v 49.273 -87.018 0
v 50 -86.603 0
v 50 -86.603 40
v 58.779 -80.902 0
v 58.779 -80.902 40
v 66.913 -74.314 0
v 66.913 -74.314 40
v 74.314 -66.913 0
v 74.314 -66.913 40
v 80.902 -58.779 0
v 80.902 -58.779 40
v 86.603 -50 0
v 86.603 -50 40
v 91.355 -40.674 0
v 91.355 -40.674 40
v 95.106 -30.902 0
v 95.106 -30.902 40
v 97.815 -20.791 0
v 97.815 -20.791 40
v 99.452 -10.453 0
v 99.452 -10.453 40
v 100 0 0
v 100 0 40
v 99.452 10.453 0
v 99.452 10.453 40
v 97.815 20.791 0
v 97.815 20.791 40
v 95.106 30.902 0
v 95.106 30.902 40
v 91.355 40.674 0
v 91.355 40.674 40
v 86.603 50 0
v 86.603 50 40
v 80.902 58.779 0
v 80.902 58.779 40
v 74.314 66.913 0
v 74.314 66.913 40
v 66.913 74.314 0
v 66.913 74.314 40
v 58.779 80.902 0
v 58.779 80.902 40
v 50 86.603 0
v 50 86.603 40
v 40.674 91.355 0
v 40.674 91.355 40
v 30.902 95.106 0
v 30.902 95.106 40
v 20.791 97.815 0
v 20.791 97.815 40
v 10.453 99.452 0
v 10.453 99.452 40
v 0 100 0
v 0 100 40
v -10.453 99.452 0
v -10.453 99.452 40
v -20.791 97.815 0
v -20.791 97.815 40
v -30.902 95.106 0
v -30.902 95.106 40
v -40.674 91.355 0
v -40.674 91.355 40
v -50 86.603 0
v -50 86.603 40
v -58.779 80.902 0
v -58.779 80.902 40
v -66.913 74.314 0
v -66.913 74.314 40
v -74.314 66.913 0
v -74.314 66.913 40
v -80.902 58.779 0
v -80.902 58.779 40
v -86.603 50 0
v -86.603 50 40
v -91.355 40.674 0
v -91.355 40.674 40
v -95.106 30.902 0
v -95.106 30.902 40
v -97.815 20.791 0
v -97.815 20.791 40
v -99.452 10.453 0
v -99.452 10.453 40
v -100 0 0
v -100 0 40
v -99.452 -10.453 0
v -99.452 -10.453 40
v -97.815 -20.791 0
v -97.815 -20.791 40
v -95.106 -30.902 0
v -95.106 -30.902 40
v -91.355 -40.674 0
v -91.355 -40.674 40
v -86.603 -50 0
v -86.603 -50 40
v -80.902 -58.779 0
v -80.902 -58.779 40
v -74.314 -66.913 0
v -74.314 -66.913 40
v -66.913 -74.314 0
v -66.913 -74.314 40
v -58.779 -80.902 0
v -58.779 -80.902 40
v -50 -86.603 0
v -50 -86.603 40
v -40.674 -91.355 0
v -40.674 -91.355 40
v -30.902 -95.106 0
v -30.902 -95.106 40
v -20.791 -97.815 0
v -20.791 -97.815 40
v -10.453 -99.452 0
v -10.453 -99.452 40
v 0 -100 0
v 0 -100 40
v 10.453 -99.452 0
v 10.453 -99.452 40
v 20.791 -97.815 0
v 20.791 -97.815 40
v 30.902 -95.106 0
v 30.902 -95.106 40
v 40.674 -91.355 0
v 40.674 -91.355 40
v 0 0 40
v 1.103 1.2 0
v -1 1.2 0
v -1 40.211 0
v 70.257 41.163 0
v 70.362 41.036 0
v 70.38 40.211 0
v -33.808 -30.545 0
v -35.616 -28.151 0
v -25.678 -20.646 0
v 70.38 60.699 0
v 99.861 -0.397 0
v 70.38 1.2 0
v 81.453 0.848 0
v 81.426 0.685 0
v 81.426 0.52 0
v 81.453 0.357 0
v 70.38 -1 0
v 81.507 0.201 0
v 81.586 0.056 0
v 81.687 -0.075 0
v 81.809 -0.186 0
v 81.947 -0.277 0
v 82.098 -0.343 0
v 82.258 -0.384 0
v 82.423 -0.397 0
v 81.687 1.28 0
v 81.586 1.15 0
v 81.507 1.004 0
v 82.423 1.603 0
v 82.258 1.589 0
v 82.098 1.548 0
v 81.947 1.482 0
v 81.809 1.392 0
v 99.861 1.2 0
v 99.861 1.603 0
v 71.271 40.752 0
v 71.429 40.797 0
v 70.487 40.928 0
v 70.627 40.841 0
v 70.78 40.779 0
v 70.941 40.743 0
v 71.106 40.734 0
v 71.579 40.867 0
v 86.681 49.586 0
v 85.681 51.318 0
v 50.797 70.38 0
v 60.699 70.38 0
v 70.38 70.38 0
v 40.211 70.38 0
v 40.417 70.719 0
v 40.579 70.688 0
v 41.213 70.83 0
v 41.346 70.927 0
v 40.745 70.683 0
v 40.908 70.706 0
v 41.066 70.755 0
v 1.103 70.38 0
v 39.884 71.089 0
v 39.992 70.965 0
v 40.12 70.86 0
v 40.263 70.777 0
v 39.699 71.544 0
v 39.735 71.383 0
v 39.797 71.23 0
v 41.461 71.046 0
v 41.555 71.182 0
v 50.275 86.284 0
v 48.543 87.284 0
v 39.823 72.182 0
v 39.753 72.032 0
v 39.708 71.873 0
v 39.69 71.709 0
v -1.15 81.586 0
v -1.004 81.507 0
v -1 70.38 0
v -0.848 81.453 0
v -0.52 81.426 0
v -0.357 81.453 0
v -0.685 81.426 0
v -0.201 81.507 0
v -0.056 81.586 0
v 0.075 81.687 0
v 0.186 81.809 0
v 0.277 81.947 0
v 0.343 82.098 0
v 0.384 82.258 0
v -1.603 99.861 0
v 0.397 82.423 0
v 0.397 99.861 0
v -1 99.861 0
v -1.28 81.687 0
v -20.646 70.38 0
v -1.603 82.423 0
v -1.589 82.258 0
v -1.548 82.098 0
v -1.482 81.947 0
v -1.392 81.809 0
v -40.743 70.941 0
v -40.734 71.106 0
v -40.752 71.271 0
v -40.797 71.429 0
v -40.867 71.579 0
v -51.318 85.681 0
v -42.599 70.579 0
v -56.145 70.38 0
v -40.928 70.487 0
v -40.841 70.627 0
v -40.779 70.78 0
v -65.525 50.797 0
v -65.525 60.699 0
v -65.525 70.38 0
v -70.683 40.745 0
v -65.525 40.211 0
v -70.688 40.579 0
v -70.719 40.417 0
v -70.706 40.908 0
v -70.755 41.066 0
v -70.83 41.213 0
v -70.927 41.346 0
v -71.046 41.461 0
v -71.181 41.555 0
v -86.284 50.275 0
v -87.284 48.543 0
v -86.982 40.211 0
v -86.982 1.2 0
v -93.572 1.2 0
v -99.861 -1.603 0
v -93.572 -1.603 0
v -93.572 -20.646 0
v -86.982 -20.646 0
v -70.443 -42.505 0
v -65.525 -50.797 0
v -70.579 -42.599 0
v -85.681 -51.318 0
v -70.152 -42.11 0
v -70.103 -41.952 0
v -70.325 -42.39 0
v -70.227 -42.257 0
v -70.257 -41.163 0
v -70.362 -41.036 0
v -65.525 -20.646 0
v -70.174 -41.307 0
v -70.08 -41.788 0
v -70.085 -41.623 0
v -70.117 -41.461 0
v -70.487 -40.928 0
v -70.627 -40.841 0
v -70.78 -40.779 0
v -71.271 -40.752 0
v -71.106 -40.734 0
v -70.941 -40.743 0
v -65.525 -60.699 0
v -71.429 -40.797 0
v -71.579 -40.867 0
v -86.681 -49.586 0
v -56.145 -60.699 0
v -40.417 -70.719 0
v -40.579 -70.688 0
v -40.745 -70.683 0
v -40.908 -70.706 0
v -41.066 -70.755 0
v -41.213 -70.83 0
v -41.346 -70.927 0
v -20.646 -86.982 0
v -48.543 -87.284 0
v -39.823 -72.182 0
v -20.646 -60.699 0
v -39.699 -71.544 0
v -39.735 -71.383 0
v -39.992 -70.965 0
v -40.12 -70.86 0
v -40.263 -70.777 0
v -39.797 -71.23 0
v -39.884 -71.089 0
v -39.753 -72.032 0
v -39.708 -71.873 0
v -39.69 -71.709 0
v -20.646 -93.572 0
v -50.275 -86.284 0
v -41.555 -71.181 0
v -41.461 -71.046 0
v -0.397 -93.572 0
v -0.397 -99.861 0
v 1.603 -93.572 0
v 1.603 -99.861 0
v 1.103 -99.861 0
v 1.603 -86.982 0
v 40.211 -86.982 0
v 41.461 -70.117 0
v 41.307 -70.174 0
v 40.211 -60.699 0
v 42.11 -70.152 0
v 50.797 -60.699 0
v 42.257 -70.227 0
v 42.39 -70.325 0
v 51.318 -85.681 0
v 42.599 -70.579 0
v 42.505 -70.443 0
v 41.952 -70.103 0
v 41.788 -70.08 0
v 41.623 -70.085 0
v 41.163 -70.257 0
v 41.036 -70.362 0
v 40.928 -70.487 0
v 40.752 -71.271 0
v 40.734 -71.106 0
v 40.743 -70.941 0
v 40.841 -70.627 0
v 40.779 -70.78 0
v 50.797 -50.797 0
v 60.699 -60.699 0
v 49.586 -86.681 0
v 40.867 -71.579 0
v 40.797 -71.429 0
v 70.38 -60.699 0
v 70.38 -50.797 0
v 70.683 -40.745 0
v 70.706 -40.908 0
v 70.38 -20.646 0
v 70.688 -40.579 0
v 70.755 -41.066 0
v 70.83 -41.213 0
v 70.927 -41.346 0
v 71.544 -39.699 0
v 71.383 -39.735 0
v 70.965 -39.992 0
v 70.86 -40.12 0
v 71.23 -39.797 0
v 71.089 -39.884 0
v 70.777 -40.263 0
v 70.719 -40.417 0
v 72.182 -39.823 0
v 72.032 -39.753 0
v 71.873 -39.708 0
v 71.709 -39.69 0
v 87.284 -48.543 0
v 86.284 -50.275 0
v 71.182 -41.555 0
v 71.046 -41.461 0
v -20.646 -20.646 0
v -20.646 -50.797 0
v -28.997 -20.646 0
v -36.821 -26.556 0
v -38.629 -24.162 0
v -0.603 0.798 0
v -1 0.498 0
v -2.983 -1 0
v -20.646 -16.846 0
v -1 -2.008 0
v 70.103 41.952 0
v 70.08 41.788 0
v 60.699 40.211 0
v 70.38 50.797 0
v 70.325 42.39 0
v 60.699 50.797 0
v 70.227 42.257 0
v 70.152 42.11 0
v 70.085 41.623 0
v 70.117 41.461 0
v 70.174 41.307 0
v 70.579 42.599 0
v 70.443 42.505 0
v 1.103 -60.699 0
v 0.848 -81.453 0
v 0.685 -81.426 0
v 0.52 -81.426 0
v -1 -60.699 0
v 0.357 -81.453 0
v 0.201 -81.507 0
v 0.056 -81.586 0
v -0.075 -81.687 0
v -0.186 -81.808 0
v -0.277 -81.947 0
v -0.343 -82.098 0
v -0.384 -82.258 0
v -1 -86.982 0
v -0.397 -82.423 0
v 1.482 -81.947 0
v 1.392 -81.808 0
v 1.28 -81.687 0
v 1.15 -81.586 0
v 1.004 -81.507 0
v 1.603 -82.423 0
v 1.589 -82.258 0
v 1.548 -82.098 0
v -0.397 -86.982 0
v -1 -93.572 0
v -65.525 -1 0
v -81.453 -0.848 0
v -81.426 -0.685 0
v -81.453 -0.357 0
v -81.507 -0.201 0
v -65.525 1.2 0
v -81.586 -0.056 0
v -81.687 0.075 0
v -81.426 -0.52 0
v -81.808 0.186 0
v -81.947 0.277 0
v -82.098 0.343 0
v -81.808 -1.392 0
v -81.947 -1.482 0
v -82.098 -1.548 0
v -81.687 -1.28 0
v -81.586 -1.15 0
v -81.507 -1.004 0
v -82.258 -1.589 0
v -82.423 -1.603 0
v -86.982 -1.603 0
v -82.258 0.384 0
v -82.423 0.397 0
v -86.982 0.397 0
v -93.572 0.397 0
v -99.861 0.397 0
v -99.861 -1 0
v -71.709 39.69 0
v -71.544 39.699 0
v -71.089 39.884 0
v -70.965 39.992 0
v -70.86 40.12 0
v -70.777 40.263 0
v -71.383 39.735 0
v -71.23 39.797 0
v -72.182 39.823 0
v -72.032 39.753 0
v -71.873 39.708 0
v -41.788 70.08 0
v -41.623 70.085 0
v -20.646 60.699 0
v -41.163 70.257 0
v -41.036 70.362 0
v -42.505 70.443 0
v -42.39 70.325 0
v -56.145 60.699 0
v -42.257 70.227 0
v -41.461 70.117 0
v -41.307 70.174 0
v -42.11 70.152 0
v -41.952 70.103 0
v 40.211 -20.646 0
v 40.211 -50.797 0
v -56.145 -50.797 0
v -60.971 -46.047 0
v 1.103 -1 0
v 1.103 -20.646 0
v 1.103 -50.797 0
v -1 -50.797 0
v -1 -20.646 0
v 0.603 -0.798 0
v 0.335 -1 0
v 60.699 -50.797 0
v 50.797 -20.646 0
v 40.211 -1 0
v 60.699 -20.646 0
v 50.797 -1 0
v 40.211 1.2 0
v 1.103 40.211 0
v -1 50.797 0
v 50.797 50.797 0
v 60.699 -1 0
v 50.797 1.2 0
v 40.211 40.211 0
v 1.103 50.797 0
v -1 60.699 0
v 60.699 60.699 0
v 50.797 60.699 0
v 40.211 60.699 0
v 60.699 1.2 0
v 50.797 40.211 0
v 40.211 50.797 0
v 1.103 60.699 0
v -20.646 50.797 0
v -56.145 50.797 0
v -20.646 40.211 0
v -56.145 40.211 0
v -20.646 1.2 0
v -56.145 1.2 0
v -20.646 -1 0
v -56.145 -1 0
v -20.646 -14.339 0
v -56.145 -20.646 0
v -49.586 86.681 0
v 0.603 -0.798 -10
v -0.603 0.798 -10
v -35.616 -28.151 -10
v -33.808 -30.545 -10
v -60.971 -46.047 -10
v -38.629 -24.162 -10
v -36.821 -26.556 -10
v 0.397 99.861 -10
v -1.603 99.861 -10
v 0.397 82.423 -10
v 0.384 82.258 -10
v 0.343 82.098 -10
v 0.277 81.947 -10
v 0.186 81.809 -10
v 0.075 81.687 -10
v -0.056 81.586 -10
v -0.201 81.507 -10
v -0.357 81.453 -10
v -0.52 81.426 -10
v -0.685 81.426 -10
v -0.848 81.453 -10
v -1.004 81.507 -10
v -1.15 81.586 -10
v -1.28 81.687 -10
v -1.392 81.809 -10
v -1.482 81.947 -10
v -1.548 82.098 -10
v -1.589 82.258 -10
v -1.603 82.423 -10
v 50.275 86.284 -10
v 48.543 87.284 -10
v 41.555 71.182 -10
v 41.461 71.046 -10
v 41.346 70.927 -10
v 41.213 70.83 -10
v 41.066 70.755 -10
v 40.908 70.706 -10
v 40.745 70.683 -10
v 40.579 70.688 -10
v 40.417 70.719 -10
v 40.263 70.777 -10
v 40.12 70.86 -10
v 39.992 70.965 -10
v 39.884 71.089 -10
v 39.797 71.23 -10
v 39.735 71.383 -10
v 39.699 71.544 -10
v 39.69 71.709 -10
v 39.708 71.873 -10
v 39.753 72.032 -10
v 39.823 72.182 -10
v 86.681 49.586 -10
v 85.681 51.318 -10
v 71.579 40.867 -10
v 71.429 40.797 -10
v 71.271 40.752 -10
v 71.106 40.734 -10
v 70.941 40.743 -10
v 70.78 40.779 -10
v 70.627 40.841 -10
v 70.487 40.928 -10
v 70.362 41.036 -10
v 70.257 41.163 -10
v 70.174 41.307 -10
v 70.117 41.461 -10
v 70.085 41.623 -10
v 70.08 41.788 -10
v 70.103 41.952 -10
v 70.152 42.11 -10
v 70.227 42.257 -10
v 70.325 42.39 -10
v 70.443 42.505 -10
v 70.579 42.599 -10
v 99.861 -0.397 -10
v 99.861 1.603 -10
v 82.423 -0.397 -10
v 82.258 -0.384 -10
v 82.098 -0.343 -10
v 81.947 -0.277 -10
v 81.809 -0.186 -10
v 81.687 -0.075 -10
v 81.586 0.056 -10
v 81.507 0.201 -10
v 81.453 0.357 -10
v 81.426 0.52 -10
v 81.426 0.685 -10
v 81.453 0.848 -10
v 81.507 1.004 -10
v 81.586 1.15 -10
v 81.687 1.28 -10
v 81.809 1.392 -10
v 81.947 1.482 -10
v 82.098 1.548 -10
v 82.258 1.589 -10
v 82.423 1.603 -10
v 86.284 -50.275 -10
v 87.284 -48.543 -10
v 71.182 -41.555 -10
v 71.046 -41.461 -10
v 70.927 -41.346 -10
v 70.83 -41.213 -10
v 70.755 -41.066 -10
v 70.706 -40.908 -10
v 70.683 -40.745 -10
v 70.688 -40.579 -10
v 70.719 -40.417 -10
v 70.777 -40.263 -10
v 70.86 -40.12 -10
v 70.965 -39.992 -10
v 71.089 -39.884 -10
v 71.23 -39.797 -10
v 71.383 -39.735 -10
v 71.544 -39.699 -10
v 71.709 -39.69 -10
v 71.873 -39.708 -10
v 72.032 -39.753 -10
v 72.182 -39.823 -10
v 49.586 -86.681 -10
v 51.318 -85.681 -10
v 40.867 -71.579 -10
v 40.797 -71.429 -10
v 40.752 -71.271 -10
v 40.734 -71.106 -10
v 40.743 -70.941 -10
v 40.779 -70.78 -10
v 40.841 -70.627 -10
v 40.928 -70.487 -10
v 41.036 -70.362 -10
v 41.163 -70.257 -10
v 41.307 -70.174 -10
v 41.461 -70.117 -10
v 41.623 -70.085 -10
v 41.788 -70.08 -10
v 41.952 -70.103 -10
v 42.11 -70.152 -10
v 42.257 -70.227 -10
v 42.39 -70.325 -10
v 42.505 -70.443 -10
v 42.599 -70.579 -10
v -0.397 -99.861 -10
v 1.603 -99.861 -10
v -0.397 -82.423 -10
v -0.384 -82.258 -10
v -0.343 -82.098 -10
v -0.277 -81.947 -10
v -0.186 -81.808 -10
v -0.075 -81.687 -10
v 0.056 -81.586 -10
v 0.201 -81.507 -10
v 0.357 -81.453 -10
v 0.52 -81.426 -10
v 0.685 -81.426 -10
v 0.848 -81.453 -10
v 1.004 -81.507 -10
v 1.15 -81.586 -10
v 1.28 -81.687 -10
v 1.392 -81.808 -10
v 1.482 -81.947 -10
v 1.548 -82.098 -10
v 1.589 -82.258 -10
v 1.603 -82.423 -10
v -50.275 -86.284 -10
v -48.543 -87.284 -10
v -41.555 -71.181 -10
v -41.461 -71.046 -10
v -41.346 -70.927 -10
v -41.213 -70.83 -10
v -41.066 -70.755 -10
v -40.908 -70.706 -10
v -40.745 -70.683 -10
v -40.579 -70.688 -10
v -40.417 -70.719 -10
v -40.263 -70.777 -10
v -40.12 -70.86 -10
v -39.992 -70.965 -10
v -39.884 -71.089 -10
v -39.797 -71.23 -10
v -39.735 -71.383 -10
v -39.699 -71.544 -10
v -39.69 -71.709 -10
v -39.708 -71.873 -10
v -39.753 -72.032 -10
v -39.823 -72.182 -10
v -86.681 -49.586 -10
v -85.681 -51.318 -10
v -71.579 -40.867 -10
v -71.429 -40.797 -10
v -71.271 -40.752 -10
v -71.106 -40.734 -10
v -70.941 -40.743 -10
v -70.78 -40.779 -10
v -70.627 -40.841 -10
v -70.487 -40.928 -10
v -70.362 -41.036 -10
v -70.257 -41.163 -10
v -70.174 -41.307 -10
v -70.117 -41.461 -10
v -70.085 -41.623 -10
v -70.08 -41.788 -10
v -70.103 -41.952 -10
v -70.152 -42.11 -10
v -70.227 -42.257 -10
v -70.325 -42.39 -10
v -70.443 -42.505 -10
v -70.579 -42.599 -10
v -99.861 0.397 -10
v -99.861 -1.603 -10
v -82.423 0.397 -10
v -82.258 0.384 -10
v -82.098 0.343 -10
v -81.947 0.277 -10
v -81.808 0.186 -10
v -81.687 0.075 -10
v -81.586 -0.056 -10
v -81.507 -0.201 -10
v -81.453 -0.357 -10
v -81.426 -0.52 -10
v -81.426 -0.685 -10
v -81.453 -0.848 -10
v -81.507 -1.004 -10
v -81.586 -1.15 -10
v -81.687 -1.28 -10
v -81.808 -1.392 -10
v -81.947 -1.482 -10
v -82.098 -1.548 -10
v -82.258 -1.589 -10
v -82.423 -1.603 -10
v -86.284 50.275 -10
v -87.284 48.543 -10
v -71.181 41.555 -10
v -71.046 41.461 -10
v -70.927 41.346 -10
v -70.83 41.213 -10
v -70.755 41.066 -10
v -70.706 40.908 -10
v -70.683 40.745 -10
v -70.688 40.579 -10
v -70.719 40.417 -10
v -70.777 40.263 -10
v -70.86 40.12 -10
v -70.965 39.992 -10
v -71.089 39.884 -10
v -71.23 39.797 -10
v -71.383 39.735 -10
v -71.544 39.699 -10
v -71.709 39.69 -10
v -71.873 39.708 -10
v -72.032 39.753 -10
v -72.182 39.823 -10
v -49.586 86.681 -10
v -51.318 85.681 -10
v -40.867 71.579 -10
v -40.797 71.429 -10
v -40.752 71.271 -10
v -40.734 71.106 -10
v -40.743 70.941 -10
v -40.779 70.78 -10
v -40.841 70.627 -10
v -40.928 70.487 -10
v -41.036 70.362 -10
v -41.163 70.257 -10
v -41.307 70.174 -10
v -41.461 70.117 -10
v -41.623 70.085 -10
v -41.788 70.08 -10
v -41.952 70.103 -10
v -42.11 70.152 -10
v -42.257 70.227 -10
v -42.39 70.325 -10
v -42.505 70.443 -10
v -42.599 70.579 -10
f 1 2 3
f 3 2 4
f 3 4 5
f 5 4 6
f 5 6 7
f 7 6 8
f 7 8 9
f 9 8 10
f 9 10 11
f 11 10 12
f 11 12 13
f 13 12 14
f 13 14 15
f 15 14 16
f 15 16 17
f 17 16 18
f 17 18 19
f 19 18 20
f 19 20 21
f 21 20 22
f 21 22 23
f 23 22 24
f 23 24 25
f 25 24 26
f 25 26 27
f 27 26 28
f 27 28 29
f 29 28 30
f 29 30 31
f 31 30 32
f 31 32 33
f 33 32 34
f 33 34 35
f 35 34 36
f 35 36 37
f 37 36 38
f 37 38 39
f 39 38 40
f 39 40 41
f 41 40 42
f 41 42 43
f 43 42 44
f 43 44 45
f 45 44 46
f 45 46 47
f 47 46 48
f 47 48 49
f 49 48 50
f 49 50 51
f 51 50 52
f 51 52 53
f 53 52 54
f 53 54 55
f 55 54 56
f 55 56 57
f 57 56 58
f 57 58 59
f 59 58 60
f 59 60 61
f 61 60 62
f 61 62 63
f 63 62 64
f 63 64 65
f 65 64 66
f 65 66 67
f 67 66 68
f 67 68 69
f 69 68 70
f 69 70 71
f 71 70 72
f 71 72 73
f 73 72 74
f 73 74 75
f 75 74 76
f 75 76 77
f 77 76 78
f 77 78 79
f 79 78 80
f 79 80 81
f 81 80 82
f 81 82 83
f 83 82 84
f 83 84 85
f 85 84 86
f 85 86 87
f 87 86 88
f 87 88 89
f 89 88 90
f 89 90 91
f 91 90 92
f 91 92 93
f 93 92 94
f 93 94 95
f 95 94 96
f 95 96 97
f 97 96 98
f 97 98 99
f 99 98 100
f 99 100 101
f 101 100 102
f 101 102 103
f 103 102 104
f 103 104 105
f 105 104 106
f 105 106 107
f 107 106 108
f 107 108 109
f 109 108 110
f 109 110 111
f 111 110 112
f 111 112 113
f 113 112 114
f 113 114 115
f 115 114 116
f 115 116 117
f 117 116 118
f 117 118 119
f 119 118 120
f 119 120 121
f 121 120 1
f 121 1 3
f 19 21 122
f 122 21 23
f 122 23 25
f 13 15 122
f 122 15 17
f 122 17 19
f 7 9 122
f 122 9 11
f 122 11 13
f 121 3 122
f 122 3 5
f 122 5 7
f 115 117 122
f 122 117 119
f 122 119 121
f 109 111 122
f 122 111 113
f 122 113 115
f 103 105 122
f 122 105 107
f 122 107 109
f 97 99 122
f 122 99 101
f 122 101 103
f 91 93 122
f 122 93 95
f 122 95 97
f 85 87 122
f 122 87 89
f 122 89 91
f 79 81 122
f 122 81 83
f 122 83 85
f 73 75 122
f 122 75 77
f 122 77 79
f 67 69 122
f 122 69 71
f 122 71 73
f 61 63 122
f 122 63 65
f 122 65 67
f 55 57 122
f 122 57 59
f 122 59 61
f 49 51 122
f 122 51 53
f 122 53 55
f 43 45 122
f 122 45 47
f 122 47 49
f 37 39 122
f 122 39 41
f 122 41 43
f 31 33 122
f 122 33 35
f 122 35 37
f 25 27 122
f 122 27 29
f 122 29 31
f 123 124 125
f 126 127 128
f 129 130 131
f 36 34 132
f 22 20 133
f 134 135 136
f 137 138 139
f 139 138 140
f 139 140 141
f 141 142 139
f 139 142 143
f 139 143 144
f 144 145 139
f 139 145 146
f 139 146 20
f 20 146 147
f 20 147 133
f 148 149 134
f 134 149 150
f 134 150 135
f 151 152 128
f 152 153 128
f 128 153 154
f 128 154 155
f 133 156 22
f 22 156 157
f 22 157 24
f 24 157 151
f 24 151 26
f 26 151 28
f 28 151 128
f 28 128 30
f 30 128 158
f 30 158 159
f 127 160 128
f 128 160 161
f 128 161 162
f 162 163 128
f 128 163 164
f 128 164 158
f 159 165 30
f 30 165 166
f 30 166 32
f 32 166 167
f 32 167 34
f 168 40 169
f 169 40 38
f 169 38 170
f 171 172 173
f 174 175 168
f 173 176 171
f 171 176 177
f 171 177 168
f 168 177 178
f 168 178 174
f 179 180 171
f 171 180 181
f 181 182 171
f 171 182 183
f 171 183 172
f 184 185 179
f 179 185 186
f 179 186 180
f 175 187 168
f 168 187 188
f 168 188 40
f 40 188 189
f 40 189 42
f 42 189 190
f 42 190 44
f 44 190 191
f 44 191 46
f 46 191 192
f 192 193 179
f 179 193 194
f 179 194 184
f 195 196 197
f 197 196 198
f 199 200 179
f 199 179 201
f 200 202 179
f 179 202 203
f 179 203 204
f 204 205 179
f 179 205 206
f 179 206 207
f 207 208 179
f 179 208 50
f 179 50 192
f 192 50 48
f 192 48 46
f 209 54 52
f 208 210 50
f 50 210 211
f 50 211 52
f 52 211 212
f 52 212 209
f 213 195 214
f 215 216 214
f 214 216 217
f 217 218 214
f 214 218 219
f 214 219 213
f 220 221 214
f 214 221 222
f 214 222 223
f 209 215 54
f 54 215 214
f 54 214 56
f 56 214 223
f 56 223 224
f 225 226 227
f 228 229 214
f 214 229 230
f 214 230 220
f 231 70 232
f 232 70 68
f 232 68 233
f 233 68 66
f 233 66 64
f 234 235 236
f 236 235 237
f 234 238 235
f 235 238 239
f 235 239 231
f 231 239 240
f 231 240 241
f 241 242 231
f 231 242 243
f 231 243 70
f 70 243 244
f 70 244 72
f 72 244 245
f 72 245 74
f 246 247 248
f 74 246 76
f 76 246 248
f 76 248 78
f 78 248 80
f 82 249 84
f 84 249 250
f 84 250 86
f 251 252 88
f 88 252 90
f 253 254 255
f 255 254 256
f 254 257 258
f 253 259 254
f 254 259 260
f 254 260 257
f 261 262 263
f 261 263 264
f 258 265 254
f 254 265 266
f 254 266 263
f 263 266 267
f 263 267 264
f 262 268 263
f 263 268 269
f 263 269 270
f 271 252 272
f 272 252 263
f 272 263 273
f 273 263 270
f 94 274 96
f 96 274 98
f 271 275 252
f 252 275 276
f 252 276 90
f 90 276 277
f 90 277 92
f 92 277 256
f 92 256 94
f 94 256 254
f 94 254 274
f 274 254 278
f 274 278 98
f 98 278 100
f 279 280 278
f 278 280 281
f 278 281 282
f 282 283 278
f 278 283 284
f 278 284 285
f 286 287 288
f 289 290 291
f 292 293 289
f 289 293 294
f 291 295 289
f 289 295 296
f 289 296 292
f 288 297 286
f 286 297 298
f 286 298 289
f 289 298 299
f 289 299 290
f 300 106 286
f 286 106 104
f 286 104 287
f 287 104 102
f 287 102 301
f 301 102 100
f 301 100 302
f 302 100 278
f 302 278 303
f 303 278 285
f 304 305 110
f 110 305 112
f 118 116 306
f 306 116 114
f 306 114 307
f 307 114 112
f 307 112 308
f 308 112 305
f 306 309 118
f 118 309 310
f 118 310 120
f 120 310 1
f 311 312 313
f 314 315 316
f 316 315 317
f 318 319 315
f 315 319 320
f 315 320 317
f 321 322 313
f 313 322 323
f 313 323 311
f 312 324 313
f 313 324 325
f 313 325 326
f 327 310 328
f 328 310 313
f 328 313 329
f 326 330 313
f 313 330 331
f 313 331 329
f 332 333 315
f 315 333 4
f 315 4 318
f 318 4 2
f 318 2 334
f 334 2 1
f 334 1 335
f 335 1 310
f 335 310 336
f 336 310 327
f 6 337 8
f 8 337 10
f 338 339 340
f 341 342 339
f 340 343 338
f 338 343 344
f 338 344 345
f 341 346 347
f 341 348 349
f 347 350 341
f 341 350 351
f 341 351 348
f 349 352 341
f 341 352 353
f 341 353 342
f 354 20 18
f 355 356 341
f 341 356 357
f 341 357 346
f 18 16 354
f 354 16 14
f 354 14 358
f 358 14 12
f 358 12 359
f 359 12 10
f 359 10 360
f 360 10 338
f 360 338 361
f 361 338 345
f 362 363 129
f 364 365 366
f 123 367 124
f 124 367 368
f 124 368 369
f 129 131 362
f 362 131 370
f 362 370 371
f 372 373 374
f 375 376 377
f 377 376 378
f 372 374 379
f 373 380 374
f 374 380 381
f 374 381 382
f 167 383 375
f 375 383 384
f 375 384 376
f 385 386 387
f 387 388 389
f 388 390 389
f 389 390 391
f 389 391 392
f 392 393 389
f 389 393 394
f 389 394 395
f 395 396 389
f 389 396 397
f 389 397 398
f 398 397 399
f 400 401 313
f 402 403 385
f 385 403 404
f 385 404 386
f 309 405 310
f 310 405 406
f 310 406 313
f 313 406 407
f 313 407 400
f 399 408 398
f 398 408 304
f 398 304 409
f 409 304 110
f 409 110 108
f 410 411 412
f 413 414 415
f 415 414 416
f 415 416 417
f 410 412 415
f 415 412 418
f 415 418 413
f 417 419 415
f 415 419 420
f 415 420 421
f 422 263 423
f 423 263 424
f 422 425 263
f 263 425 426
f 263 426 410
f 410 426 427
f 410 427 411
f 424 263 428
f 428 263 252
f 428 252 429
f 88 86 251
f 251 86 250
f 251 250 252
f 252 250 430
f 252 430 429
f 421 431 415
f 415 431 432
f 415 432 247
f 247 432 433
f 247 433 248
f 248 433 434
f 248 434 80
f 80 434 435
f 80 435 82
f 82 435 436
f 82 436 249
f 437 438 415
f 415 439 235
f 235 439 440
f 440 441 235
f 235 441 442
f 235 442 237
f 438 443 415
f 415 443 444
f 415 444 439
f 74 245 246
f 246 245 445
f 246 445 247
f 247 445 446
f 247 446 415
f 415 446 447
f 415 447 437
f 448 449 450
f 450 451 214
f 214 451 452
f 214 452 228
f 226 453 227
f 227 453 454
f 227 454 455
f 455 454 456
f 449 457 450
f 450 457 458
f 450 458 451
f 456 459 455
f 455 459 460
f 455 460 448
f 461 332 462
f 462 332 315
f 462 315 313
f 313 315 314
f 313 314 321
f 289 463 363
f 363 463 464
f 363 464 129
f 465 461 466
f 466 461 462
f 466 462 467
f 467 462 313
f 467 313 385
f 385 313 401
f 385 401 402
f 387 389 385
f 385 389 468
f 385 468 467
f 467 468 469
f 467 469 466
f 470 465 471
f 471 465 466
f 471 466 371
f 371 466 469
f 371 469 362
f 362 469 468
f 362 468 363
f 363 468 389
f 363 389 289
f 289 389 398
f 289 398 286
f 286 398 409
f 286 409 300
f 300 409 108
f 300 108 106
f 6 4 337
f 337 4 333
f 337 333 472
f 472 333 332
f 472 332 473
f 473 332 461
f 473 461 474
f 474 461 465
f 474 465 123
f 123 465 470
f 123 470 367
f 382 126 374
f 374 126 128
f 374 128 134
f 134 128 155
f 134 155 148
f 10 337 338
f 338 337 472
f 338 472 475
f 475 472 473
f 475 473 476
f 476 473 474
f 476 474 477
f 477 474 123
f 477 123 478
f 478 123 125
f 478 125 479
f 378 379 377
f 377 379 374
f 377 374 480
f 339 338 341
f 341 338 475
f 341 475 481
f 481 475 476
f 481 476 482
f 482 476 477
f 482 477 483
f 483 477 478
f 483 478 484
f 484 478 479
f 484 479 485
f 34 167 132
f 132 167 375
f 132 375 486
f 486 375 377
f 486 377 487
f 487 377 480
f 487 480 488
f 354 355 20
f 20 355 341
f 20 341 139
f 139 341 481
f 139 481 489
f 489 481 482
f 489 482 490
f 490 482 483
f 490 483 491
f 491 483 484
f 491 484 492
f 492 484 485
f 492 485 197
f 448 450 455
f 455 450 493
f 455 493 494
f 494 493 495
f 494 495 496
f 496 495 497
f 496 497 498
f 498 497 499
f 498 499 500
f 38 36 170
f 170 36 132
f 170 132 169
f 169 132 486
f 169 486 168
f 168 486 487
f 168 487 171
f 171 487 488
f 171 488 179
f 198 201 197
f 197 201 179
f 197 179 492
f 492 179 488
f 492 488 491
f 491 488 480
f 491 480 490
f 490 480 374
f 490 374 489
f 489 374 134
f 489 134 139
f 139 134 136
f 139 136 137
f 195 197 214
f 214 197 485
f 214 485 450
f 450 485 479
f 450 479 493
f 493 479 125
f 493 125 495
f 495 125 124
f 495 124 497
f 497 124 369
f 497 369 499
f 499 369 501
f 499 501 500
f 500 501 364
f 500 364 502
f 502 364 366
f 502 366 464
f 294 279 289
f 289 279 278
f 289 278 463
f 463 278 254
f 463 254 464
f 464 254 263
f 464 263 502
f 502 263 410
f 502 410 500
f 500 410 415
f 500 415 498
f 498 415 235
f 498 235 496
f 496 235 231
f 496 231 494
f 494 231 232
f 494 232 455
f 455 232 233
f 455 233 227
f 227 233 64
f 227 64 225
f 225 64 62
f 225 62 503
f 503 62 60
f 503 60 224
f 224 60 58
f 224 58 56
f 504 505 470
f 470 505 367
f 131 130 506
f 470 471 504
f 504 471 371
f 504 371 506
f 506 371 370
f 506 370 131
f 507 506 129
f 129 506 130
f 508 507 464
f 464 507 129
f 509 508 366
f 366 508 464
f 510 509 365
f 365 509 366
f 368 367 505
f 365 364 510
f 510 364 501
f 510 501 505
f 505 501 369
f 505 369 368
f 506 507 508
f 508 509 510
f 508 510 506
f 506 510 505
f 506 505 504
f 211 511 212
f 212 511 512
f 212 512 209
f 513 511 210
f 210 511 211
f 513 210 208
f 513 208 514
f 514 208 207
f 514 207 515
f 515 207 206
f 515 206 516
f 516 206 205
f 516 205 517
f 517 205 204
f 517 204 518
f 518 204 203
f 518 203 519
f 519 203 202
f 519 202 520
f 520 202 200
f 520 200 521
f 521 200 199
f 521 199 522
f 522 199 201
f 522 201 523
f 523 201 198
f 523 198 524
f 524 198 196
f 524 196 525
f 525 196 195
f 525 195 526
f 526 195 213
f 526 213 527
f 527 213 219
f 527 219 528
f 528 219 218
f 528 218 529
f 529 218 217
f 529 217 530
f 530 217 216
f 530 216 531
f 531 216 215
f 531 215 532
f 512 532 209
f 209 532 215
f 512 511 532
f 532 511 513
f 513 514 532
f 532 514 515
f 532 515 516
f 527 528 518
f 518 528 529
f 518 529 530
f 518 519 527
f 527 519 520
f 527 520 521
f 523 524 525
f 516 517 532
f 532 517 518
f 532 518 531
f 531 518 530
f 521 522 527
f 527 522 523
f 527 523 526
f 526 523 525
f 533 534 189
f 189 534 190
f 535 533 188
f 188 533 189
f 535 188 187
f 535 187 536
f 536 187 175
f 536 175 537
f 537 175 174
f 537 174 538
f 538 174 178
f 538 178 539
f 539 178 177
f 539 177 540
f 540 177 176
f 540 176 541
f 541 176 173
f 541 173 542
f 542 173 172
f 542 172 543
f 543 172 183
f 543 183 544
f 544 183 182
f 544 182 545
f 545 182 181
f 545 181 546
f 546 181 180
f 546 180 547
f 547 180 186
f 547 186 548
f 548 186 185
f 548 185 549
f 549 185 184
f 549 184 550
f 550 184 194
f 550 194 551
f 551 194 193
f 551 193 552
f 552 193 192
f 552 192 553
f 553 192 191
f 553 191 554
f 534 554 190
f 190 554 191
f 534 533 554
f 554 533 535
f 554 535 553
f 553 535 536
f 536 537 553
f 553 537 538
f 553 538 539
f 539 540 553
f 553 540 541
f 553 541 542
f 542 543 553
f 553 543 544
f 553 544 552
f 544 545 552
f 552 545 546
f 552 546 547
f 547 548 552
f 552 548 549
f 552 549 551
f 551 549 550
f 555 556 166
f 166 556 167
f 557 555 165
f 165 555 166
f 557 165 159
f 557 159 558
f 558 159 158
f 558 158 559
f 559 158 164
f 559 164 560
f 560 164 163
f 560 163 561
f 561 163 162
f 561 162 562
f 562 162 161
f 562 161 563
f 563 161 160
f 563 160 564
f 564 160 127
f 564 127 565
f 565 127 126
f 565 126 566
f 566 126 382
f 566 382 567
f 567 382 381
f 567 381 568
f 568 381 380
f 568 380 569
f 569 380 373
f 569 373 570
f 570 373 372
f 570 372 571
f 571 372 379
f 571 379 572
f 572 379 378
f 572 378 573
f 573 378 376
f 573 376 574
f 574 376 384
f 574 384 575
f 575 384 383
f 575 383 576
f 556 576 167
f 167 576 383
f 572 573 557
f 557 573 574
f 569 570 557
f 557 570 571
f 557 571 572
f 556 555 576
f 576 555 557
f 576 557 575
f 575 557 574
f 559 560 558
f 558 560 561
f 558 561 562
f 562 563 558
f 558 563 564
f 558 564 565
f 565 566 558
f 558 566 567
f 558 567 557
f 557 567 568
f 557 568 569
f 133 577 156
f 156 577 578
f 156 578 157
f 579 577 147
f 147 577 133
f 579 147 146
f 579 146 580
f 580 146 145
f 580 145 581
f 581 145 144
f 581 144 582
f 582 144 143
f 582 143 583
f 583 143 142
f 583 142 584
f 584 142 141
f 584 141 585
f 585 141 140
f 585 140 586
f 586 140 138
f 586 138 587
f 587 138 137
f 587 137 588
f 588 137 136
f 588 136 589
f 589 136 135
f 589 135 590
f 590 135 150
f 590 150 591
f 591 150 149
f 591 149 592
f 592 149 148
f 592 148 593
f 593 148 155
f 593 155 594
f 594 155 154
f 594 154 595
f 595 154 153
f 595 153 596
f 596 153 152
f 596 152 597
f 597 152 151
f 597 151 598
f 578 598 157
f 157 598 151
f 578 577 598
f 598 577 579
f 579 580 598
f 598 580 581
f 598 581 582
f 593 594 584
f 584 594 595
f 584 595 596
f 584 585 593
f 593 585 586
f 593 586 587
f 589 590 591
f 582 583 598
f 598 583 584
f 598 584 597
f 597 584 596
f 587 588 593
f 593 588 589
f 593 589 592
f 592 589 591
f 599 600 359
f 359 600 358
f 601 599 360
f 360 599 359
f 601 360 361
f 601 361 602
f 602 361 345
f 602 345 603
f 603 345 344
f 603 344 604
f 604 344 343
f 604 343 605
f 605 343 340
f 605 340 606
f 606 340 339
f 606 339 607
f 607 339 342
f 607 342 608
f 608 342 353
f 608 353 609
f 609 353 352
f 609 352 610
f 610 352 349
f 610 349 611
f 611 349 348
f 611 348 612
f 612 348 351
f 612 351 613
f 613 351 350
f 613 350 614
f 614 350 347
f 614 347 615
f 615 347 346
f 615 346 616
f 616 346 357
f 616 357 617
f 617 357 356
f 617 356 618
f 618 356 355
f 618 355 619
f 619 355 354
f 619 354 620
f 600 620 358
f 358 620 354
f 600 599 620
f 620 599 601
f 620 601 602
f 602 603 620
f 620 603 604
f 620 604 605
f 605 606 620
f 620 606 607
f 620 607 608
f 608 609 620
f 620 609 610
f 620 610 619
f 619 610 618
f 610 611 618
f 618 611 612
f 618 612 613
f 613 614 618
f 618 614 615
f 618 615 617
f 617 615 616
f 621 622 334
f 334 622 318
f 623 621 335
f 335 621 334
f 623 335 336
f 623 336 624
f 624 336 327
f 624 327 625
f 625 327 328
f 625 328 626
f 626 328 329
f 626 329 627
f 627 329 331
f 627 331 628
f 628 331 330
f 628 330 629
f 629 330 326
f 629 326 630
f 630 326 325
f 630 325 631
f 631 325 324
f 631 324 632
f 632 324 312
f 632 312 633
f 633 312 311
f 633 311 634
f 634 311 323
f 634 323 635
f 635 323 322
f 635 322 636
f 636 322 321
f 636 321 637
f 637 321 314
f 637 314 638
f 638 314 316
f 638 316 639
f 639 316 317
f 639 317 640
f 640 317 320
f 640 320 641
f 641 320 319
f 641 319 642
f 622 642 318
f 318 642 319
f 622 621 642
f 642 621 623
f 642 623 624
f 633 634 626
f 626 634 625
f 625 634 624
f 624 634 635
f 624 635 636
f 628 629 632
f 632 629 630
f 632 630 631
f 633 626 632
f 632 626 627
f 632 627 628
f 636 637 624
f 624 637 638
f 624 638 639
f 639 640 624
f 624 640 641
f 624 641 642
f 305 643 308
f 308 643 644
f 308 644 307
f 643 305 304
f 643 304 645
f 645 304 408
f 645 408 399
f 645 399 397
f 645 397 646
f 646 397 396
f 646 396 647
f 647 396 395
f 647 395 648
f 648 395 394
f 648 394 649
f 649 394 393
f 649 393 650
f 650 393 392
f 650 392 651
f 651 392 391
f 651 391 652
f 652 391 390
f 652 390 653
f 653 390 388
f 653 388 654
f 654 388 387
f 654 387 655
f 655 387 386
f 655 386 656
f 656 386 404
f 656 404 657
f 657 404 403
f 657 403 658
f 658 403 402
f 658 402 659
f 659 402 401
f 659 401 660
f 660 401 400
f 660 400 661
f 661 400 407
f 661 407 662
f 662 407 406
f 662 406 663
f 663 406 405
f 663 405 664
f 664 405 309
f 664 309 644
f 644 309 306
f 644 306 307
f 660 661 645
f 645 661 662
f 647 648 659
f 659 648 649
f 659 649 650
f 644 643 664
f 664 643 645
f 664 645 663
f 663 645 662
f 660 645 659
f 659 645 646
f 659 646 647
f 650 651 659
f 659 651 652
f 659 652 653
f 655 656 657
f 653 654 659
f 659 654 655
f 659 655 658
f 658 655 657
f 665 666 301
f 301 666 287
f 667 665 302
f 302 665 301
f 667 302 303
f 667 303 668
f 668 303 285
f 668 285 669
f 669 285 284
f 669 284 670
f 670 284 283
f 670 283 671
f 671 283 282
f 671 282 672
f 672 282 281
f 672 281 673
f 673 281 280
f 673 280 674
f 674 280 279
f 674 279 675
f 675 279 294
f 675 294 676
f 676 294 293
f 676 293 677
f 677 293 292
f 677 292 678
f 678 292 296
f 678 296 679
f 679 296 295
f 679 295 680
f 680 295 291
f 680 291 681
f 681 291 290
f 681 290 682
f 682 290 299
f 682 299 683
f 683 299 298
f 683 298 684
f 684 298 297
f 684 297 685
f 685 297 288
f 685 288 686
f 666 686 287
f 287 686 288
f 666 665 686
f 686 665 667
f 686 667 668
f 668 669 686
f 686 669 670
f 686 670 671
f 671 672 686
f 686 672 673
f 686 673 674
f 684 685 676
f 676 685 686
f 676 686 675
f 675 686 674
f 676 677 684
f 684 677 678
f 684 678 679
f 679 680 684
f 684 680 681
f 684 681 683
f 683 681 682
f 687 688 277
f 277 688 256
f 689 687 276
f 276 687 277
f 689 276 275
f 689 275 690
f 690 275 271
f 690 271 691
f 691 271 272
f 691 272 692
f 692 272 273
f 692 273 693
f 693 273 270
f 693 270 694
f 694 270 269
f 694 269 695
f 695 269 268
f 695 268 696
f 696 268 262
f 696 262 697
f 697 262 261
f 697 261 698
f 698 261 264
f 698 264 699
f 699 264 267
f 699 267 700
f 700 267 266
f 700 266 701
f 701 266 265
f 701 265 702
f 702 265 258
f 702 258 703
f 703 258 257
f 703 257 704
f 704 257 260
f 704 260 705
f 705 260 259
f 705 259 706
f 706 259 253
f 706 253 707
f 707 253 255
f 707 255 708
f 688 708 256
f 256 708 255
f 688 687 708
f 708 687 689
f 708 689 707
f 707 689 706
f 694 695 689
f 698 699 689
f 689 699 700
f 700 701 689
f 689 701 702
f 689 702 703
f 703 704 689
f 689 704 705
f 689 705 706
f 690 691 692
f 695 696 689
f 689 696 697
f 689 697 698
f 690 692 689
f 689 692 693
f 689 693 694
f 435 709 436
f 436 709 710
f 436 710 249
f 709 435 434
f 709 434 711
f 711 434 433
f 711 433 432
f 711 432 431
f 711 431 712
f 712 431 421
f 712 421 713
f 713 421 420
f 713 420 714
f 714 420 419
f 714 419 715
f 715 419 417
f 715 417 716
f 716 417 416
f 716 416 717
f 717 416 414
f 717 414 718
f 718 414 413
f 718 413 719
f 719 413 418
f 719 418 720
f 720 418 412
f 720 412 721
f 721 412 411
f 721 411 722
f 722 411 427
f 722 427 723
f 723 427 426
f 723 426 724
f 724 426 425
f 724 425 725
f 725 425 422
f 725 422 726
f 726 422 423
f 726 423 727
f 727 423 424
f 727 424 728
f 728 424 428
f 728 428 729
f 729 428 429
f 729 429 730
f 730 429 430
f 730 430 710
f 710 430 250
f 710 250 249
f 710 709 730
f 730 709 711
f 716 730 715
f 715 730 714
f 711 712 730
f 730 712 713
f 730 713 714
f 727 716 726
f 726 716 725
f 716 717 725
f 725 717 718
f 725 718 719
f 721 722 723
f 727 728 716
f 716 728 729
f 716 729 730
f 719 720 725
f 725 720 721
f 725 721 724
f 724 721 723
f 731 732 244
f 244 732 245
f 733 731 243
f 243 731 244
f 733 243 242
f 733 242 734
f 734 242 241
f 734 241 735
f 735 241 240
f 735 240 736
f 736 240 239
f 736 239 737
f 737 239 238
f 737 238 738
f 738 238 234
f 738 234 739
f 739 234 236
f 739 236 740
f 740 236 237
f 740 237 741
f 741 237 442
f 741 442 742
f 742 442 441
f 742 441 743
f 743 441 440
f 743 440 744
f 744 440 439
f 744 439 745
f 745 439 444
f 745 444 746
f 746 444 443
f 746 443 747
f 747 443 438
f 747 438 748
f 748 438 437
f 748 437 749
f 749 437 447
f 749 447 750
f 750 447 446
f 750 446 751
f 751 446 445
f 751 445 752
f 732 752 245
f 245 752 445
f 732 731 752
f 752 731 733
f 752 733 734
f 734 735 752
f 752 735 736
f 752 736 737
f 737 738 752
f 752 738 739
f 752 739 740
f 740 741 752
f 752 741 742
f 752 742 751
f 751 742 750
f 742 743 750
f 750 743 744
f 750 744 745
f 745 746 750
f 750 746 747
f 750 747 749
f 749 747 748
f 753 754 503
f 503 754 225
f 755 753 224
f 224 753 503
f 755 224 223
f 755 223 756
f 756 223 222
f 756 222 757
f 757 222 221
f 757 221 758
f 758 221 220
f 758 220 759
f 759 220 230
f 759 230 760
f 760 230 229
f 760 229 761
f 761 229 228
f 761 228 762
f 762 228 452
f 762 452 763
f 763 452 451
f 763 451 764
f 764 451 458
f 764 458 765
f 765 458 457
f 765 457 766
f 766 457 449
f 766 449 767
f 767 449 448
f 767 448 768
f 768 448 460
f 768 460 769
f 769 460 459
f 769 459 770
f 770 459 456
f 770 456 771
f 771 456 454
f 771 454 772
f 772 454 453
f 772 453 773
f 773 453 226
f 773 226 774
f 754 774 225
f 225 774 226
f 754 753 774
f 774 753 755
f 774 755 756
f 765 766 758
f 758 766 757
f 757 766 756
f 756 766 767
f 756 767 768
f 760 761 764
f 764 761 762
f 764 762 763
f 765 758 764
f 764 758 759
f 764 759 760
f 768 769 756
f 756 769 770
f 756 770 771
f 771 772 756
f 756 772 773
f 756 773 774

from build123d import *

# Parameters (mm, degrees)
SKETCH1_R           = 100
BOSS_EXTRUDE1_DEPTH = 40
BOSS_EXTRUDE4_DEPTH = 10


with BuildPart() as part:
    # Sketch1 → Boss-Extrude1 (new body)
    with BuildSketch(Plane.XY):
        Circle(SKETCH1_R)
    extrude(amount=BOSS_EXTRUDE1_DEPTH)

    # Sketch3 → Boss-Extrude4 (add)
    with BuildSketch(Plane.XY):
        Polygon((-0.602668663, 0.79799153), (-36.821347212, -26.555510029), (-38.629353201, -24.161535438), (-60.970804607, -46.04709685), (-33.808003897, -30.545467681), (-35.616009886, -28.15149309), (0.602668663, -0.79799153), align=None)
        with BuildLine():
            Line((-1.602668663, 99.861033349), (-1.602668663, 82.422716301))
            ThreePointArc((-1.602668663, 82.422716301), (-0.602668663, 81.422716301), (0.397331337, 82.422716301))
            Line((0.397331337, 82.422716301), (0.397331337, 99.861033349))
            Line((0.397331337, 99.861033349), (-1.602668663, 99.861033349))
        make_face()
        with BuildLine():
            Line((48.542564899, 87.28352606), (39.823406374, 72.181500497))
            ThreePointArc((39.823406374, 72.181500497), (40.189431778, 70.815475093), (41.555457182, 71.181500497))
            Line((41.555457182, 71.181500497), (50.274615706, 86.28352606))
            Line((50.274615706, 86.28352606), (48.542564899, 87.28352606))
        make_face()
        with BuildLine():
            Line((85.680857397, 51.318468451), (70.578831834, 42.599309926))
            ThreePointArc((70.578831834, 42.599309926), (70.21280643, 41.233284522), (71.578831834, 40.867259119))
            Line((71.578831834, 40.867259119), (86.680857397, 49.586417643))
            Line((86.680857397, 49.586417643), (85.680857397, 51.318468451))
        make_face()
        with BuildLine():
            Line((99.861033349, 1.602668663), (82.422716301, 1.602668663))
            ThreePointArc((82.422716301, 1.602668663), (81.422716301, 0.602668663), (82.422716301, -0.397331337))
            Line((82.422716301, -0.397331337), (99.861033349, -0.397331337))
            Line((99.861033349, -0.397331337), (99.861033349, 1.602668663))
        make_face()
        with BuildLine():
            Line((87.28352606, -48.542564899), (72.181500497, -39.823406374))
            ThreePointArc((72.181500497, -39.823406374), (70.815475093, -40.189431778), (71.181500497, -41.555457182))
            Line((71.181500497, -41.555457182), (86.28352606, -50.274615706))
            Line((86.28352606, -50.274615706), (87.28352606, -48.542564899))
        make_face()
        with BuildLine():
            Line((51.318468451, -85.680857397), (42.599309926, -70.578831834))
            ThreePointArc((42.599309926, -70.578831834), (41.233284522, -70.21280643), (40.867259119, -71.578831834))
            Line((40.867259119, -71.578831834), (49.586417643, -86.680857397))
            Line((49.586417643, -86.680857397), (51.318468451, -85.680857397))
        make_face()
        with BuildLine():
            Line((1.602668663, -99.861033349), (1.602668663, -82.422716301))
            ThreePointArc((1.602668663, -82.422716301), (0.602668663, -81.422716301), (-0.397331337, -82.422716301))
            Line((-0.397331337, -82.422716301), (-0.397331337, -99.861033349))
            Line((-0.397331337, -99.861033349), (1.602668663, -99.861033349))
        make_face()
        with BuildLine():
            Line((-48.542564899, -87.28352606), (-39.823406374, -72.181500497))
            ThreePointArc((-39.823406374, -72.181500497), (-40.189431778, -70.815475093), (-41.555457182, -71.181500497))
            Line((-41.555457182, -71.181500497), (-50.274615706, -86.28352606))
            Line((-50.274615706, -86.28352606), (-48.542564899, -87.28352606))
        make_face()
        with BuildLine():
            Line((-85.680857397, -51.318468451), (-70.578831834, -42.599309926))
            ThreePointArc((-70.578831834, -42.599309926), (-70.21280643, -41.233284522), (-71.578831834, -40.867259119))
            Line((-71.578831834, -40.867259119), (-86.680857397, -49.586417643))
            Line((-86.680857397, -49.586417643), (-85.680857397, -51.318468451))
        make_face()
        with BuildLine():
            Line((-99.861033349, -1.602668663), (-82.422716301, -1.602668663))
            ThreePointArc((-82.422716301, -1.602668663), (-81.422716301, -0.602668663), (-82.422716301, 0.397331337))
            Line((-82.422716301, 0.397331337), (-99.861033349, 0.397331337))
            Line((-99.861033349, 0.397331337), (-99.861033349, -1.602668663))
        make_face()
        with BuildLine():
            Line((-87.28352606, 48.542564899), (-72.181500497, 39.823406374))
            ThreePointArc((-72.181500497, 39.823406374), (-70.815475093, 40.189431778), (-71.181500497, 41.555457182))
            Line((-71.181500497, 41.555457182), (-86.28352606, 50.274615706))
            Line((-86.28352606, 50.274615706), (-87.28352606, 48.542564899))
        make_face()
        with BuildLine():
            Line((-51.318468451, 85.680857397), (-42.599309926, 70.578831834))
            ThreePointArc((-42.599309926, 70.578831834), (-41.233284522, 70.21280643), (-40.867259119, 71.578831834))
            Line((-40.867259119, 71.578831834), (-49.586417643, 86.680857397))
            Line((-49.586417643, 86.680857397), (-51.318468451, 85.680857397))
        make_face()
    extrude(amount=-BOSS_EXTRUDE4_DEPTH)


solid = part.part
